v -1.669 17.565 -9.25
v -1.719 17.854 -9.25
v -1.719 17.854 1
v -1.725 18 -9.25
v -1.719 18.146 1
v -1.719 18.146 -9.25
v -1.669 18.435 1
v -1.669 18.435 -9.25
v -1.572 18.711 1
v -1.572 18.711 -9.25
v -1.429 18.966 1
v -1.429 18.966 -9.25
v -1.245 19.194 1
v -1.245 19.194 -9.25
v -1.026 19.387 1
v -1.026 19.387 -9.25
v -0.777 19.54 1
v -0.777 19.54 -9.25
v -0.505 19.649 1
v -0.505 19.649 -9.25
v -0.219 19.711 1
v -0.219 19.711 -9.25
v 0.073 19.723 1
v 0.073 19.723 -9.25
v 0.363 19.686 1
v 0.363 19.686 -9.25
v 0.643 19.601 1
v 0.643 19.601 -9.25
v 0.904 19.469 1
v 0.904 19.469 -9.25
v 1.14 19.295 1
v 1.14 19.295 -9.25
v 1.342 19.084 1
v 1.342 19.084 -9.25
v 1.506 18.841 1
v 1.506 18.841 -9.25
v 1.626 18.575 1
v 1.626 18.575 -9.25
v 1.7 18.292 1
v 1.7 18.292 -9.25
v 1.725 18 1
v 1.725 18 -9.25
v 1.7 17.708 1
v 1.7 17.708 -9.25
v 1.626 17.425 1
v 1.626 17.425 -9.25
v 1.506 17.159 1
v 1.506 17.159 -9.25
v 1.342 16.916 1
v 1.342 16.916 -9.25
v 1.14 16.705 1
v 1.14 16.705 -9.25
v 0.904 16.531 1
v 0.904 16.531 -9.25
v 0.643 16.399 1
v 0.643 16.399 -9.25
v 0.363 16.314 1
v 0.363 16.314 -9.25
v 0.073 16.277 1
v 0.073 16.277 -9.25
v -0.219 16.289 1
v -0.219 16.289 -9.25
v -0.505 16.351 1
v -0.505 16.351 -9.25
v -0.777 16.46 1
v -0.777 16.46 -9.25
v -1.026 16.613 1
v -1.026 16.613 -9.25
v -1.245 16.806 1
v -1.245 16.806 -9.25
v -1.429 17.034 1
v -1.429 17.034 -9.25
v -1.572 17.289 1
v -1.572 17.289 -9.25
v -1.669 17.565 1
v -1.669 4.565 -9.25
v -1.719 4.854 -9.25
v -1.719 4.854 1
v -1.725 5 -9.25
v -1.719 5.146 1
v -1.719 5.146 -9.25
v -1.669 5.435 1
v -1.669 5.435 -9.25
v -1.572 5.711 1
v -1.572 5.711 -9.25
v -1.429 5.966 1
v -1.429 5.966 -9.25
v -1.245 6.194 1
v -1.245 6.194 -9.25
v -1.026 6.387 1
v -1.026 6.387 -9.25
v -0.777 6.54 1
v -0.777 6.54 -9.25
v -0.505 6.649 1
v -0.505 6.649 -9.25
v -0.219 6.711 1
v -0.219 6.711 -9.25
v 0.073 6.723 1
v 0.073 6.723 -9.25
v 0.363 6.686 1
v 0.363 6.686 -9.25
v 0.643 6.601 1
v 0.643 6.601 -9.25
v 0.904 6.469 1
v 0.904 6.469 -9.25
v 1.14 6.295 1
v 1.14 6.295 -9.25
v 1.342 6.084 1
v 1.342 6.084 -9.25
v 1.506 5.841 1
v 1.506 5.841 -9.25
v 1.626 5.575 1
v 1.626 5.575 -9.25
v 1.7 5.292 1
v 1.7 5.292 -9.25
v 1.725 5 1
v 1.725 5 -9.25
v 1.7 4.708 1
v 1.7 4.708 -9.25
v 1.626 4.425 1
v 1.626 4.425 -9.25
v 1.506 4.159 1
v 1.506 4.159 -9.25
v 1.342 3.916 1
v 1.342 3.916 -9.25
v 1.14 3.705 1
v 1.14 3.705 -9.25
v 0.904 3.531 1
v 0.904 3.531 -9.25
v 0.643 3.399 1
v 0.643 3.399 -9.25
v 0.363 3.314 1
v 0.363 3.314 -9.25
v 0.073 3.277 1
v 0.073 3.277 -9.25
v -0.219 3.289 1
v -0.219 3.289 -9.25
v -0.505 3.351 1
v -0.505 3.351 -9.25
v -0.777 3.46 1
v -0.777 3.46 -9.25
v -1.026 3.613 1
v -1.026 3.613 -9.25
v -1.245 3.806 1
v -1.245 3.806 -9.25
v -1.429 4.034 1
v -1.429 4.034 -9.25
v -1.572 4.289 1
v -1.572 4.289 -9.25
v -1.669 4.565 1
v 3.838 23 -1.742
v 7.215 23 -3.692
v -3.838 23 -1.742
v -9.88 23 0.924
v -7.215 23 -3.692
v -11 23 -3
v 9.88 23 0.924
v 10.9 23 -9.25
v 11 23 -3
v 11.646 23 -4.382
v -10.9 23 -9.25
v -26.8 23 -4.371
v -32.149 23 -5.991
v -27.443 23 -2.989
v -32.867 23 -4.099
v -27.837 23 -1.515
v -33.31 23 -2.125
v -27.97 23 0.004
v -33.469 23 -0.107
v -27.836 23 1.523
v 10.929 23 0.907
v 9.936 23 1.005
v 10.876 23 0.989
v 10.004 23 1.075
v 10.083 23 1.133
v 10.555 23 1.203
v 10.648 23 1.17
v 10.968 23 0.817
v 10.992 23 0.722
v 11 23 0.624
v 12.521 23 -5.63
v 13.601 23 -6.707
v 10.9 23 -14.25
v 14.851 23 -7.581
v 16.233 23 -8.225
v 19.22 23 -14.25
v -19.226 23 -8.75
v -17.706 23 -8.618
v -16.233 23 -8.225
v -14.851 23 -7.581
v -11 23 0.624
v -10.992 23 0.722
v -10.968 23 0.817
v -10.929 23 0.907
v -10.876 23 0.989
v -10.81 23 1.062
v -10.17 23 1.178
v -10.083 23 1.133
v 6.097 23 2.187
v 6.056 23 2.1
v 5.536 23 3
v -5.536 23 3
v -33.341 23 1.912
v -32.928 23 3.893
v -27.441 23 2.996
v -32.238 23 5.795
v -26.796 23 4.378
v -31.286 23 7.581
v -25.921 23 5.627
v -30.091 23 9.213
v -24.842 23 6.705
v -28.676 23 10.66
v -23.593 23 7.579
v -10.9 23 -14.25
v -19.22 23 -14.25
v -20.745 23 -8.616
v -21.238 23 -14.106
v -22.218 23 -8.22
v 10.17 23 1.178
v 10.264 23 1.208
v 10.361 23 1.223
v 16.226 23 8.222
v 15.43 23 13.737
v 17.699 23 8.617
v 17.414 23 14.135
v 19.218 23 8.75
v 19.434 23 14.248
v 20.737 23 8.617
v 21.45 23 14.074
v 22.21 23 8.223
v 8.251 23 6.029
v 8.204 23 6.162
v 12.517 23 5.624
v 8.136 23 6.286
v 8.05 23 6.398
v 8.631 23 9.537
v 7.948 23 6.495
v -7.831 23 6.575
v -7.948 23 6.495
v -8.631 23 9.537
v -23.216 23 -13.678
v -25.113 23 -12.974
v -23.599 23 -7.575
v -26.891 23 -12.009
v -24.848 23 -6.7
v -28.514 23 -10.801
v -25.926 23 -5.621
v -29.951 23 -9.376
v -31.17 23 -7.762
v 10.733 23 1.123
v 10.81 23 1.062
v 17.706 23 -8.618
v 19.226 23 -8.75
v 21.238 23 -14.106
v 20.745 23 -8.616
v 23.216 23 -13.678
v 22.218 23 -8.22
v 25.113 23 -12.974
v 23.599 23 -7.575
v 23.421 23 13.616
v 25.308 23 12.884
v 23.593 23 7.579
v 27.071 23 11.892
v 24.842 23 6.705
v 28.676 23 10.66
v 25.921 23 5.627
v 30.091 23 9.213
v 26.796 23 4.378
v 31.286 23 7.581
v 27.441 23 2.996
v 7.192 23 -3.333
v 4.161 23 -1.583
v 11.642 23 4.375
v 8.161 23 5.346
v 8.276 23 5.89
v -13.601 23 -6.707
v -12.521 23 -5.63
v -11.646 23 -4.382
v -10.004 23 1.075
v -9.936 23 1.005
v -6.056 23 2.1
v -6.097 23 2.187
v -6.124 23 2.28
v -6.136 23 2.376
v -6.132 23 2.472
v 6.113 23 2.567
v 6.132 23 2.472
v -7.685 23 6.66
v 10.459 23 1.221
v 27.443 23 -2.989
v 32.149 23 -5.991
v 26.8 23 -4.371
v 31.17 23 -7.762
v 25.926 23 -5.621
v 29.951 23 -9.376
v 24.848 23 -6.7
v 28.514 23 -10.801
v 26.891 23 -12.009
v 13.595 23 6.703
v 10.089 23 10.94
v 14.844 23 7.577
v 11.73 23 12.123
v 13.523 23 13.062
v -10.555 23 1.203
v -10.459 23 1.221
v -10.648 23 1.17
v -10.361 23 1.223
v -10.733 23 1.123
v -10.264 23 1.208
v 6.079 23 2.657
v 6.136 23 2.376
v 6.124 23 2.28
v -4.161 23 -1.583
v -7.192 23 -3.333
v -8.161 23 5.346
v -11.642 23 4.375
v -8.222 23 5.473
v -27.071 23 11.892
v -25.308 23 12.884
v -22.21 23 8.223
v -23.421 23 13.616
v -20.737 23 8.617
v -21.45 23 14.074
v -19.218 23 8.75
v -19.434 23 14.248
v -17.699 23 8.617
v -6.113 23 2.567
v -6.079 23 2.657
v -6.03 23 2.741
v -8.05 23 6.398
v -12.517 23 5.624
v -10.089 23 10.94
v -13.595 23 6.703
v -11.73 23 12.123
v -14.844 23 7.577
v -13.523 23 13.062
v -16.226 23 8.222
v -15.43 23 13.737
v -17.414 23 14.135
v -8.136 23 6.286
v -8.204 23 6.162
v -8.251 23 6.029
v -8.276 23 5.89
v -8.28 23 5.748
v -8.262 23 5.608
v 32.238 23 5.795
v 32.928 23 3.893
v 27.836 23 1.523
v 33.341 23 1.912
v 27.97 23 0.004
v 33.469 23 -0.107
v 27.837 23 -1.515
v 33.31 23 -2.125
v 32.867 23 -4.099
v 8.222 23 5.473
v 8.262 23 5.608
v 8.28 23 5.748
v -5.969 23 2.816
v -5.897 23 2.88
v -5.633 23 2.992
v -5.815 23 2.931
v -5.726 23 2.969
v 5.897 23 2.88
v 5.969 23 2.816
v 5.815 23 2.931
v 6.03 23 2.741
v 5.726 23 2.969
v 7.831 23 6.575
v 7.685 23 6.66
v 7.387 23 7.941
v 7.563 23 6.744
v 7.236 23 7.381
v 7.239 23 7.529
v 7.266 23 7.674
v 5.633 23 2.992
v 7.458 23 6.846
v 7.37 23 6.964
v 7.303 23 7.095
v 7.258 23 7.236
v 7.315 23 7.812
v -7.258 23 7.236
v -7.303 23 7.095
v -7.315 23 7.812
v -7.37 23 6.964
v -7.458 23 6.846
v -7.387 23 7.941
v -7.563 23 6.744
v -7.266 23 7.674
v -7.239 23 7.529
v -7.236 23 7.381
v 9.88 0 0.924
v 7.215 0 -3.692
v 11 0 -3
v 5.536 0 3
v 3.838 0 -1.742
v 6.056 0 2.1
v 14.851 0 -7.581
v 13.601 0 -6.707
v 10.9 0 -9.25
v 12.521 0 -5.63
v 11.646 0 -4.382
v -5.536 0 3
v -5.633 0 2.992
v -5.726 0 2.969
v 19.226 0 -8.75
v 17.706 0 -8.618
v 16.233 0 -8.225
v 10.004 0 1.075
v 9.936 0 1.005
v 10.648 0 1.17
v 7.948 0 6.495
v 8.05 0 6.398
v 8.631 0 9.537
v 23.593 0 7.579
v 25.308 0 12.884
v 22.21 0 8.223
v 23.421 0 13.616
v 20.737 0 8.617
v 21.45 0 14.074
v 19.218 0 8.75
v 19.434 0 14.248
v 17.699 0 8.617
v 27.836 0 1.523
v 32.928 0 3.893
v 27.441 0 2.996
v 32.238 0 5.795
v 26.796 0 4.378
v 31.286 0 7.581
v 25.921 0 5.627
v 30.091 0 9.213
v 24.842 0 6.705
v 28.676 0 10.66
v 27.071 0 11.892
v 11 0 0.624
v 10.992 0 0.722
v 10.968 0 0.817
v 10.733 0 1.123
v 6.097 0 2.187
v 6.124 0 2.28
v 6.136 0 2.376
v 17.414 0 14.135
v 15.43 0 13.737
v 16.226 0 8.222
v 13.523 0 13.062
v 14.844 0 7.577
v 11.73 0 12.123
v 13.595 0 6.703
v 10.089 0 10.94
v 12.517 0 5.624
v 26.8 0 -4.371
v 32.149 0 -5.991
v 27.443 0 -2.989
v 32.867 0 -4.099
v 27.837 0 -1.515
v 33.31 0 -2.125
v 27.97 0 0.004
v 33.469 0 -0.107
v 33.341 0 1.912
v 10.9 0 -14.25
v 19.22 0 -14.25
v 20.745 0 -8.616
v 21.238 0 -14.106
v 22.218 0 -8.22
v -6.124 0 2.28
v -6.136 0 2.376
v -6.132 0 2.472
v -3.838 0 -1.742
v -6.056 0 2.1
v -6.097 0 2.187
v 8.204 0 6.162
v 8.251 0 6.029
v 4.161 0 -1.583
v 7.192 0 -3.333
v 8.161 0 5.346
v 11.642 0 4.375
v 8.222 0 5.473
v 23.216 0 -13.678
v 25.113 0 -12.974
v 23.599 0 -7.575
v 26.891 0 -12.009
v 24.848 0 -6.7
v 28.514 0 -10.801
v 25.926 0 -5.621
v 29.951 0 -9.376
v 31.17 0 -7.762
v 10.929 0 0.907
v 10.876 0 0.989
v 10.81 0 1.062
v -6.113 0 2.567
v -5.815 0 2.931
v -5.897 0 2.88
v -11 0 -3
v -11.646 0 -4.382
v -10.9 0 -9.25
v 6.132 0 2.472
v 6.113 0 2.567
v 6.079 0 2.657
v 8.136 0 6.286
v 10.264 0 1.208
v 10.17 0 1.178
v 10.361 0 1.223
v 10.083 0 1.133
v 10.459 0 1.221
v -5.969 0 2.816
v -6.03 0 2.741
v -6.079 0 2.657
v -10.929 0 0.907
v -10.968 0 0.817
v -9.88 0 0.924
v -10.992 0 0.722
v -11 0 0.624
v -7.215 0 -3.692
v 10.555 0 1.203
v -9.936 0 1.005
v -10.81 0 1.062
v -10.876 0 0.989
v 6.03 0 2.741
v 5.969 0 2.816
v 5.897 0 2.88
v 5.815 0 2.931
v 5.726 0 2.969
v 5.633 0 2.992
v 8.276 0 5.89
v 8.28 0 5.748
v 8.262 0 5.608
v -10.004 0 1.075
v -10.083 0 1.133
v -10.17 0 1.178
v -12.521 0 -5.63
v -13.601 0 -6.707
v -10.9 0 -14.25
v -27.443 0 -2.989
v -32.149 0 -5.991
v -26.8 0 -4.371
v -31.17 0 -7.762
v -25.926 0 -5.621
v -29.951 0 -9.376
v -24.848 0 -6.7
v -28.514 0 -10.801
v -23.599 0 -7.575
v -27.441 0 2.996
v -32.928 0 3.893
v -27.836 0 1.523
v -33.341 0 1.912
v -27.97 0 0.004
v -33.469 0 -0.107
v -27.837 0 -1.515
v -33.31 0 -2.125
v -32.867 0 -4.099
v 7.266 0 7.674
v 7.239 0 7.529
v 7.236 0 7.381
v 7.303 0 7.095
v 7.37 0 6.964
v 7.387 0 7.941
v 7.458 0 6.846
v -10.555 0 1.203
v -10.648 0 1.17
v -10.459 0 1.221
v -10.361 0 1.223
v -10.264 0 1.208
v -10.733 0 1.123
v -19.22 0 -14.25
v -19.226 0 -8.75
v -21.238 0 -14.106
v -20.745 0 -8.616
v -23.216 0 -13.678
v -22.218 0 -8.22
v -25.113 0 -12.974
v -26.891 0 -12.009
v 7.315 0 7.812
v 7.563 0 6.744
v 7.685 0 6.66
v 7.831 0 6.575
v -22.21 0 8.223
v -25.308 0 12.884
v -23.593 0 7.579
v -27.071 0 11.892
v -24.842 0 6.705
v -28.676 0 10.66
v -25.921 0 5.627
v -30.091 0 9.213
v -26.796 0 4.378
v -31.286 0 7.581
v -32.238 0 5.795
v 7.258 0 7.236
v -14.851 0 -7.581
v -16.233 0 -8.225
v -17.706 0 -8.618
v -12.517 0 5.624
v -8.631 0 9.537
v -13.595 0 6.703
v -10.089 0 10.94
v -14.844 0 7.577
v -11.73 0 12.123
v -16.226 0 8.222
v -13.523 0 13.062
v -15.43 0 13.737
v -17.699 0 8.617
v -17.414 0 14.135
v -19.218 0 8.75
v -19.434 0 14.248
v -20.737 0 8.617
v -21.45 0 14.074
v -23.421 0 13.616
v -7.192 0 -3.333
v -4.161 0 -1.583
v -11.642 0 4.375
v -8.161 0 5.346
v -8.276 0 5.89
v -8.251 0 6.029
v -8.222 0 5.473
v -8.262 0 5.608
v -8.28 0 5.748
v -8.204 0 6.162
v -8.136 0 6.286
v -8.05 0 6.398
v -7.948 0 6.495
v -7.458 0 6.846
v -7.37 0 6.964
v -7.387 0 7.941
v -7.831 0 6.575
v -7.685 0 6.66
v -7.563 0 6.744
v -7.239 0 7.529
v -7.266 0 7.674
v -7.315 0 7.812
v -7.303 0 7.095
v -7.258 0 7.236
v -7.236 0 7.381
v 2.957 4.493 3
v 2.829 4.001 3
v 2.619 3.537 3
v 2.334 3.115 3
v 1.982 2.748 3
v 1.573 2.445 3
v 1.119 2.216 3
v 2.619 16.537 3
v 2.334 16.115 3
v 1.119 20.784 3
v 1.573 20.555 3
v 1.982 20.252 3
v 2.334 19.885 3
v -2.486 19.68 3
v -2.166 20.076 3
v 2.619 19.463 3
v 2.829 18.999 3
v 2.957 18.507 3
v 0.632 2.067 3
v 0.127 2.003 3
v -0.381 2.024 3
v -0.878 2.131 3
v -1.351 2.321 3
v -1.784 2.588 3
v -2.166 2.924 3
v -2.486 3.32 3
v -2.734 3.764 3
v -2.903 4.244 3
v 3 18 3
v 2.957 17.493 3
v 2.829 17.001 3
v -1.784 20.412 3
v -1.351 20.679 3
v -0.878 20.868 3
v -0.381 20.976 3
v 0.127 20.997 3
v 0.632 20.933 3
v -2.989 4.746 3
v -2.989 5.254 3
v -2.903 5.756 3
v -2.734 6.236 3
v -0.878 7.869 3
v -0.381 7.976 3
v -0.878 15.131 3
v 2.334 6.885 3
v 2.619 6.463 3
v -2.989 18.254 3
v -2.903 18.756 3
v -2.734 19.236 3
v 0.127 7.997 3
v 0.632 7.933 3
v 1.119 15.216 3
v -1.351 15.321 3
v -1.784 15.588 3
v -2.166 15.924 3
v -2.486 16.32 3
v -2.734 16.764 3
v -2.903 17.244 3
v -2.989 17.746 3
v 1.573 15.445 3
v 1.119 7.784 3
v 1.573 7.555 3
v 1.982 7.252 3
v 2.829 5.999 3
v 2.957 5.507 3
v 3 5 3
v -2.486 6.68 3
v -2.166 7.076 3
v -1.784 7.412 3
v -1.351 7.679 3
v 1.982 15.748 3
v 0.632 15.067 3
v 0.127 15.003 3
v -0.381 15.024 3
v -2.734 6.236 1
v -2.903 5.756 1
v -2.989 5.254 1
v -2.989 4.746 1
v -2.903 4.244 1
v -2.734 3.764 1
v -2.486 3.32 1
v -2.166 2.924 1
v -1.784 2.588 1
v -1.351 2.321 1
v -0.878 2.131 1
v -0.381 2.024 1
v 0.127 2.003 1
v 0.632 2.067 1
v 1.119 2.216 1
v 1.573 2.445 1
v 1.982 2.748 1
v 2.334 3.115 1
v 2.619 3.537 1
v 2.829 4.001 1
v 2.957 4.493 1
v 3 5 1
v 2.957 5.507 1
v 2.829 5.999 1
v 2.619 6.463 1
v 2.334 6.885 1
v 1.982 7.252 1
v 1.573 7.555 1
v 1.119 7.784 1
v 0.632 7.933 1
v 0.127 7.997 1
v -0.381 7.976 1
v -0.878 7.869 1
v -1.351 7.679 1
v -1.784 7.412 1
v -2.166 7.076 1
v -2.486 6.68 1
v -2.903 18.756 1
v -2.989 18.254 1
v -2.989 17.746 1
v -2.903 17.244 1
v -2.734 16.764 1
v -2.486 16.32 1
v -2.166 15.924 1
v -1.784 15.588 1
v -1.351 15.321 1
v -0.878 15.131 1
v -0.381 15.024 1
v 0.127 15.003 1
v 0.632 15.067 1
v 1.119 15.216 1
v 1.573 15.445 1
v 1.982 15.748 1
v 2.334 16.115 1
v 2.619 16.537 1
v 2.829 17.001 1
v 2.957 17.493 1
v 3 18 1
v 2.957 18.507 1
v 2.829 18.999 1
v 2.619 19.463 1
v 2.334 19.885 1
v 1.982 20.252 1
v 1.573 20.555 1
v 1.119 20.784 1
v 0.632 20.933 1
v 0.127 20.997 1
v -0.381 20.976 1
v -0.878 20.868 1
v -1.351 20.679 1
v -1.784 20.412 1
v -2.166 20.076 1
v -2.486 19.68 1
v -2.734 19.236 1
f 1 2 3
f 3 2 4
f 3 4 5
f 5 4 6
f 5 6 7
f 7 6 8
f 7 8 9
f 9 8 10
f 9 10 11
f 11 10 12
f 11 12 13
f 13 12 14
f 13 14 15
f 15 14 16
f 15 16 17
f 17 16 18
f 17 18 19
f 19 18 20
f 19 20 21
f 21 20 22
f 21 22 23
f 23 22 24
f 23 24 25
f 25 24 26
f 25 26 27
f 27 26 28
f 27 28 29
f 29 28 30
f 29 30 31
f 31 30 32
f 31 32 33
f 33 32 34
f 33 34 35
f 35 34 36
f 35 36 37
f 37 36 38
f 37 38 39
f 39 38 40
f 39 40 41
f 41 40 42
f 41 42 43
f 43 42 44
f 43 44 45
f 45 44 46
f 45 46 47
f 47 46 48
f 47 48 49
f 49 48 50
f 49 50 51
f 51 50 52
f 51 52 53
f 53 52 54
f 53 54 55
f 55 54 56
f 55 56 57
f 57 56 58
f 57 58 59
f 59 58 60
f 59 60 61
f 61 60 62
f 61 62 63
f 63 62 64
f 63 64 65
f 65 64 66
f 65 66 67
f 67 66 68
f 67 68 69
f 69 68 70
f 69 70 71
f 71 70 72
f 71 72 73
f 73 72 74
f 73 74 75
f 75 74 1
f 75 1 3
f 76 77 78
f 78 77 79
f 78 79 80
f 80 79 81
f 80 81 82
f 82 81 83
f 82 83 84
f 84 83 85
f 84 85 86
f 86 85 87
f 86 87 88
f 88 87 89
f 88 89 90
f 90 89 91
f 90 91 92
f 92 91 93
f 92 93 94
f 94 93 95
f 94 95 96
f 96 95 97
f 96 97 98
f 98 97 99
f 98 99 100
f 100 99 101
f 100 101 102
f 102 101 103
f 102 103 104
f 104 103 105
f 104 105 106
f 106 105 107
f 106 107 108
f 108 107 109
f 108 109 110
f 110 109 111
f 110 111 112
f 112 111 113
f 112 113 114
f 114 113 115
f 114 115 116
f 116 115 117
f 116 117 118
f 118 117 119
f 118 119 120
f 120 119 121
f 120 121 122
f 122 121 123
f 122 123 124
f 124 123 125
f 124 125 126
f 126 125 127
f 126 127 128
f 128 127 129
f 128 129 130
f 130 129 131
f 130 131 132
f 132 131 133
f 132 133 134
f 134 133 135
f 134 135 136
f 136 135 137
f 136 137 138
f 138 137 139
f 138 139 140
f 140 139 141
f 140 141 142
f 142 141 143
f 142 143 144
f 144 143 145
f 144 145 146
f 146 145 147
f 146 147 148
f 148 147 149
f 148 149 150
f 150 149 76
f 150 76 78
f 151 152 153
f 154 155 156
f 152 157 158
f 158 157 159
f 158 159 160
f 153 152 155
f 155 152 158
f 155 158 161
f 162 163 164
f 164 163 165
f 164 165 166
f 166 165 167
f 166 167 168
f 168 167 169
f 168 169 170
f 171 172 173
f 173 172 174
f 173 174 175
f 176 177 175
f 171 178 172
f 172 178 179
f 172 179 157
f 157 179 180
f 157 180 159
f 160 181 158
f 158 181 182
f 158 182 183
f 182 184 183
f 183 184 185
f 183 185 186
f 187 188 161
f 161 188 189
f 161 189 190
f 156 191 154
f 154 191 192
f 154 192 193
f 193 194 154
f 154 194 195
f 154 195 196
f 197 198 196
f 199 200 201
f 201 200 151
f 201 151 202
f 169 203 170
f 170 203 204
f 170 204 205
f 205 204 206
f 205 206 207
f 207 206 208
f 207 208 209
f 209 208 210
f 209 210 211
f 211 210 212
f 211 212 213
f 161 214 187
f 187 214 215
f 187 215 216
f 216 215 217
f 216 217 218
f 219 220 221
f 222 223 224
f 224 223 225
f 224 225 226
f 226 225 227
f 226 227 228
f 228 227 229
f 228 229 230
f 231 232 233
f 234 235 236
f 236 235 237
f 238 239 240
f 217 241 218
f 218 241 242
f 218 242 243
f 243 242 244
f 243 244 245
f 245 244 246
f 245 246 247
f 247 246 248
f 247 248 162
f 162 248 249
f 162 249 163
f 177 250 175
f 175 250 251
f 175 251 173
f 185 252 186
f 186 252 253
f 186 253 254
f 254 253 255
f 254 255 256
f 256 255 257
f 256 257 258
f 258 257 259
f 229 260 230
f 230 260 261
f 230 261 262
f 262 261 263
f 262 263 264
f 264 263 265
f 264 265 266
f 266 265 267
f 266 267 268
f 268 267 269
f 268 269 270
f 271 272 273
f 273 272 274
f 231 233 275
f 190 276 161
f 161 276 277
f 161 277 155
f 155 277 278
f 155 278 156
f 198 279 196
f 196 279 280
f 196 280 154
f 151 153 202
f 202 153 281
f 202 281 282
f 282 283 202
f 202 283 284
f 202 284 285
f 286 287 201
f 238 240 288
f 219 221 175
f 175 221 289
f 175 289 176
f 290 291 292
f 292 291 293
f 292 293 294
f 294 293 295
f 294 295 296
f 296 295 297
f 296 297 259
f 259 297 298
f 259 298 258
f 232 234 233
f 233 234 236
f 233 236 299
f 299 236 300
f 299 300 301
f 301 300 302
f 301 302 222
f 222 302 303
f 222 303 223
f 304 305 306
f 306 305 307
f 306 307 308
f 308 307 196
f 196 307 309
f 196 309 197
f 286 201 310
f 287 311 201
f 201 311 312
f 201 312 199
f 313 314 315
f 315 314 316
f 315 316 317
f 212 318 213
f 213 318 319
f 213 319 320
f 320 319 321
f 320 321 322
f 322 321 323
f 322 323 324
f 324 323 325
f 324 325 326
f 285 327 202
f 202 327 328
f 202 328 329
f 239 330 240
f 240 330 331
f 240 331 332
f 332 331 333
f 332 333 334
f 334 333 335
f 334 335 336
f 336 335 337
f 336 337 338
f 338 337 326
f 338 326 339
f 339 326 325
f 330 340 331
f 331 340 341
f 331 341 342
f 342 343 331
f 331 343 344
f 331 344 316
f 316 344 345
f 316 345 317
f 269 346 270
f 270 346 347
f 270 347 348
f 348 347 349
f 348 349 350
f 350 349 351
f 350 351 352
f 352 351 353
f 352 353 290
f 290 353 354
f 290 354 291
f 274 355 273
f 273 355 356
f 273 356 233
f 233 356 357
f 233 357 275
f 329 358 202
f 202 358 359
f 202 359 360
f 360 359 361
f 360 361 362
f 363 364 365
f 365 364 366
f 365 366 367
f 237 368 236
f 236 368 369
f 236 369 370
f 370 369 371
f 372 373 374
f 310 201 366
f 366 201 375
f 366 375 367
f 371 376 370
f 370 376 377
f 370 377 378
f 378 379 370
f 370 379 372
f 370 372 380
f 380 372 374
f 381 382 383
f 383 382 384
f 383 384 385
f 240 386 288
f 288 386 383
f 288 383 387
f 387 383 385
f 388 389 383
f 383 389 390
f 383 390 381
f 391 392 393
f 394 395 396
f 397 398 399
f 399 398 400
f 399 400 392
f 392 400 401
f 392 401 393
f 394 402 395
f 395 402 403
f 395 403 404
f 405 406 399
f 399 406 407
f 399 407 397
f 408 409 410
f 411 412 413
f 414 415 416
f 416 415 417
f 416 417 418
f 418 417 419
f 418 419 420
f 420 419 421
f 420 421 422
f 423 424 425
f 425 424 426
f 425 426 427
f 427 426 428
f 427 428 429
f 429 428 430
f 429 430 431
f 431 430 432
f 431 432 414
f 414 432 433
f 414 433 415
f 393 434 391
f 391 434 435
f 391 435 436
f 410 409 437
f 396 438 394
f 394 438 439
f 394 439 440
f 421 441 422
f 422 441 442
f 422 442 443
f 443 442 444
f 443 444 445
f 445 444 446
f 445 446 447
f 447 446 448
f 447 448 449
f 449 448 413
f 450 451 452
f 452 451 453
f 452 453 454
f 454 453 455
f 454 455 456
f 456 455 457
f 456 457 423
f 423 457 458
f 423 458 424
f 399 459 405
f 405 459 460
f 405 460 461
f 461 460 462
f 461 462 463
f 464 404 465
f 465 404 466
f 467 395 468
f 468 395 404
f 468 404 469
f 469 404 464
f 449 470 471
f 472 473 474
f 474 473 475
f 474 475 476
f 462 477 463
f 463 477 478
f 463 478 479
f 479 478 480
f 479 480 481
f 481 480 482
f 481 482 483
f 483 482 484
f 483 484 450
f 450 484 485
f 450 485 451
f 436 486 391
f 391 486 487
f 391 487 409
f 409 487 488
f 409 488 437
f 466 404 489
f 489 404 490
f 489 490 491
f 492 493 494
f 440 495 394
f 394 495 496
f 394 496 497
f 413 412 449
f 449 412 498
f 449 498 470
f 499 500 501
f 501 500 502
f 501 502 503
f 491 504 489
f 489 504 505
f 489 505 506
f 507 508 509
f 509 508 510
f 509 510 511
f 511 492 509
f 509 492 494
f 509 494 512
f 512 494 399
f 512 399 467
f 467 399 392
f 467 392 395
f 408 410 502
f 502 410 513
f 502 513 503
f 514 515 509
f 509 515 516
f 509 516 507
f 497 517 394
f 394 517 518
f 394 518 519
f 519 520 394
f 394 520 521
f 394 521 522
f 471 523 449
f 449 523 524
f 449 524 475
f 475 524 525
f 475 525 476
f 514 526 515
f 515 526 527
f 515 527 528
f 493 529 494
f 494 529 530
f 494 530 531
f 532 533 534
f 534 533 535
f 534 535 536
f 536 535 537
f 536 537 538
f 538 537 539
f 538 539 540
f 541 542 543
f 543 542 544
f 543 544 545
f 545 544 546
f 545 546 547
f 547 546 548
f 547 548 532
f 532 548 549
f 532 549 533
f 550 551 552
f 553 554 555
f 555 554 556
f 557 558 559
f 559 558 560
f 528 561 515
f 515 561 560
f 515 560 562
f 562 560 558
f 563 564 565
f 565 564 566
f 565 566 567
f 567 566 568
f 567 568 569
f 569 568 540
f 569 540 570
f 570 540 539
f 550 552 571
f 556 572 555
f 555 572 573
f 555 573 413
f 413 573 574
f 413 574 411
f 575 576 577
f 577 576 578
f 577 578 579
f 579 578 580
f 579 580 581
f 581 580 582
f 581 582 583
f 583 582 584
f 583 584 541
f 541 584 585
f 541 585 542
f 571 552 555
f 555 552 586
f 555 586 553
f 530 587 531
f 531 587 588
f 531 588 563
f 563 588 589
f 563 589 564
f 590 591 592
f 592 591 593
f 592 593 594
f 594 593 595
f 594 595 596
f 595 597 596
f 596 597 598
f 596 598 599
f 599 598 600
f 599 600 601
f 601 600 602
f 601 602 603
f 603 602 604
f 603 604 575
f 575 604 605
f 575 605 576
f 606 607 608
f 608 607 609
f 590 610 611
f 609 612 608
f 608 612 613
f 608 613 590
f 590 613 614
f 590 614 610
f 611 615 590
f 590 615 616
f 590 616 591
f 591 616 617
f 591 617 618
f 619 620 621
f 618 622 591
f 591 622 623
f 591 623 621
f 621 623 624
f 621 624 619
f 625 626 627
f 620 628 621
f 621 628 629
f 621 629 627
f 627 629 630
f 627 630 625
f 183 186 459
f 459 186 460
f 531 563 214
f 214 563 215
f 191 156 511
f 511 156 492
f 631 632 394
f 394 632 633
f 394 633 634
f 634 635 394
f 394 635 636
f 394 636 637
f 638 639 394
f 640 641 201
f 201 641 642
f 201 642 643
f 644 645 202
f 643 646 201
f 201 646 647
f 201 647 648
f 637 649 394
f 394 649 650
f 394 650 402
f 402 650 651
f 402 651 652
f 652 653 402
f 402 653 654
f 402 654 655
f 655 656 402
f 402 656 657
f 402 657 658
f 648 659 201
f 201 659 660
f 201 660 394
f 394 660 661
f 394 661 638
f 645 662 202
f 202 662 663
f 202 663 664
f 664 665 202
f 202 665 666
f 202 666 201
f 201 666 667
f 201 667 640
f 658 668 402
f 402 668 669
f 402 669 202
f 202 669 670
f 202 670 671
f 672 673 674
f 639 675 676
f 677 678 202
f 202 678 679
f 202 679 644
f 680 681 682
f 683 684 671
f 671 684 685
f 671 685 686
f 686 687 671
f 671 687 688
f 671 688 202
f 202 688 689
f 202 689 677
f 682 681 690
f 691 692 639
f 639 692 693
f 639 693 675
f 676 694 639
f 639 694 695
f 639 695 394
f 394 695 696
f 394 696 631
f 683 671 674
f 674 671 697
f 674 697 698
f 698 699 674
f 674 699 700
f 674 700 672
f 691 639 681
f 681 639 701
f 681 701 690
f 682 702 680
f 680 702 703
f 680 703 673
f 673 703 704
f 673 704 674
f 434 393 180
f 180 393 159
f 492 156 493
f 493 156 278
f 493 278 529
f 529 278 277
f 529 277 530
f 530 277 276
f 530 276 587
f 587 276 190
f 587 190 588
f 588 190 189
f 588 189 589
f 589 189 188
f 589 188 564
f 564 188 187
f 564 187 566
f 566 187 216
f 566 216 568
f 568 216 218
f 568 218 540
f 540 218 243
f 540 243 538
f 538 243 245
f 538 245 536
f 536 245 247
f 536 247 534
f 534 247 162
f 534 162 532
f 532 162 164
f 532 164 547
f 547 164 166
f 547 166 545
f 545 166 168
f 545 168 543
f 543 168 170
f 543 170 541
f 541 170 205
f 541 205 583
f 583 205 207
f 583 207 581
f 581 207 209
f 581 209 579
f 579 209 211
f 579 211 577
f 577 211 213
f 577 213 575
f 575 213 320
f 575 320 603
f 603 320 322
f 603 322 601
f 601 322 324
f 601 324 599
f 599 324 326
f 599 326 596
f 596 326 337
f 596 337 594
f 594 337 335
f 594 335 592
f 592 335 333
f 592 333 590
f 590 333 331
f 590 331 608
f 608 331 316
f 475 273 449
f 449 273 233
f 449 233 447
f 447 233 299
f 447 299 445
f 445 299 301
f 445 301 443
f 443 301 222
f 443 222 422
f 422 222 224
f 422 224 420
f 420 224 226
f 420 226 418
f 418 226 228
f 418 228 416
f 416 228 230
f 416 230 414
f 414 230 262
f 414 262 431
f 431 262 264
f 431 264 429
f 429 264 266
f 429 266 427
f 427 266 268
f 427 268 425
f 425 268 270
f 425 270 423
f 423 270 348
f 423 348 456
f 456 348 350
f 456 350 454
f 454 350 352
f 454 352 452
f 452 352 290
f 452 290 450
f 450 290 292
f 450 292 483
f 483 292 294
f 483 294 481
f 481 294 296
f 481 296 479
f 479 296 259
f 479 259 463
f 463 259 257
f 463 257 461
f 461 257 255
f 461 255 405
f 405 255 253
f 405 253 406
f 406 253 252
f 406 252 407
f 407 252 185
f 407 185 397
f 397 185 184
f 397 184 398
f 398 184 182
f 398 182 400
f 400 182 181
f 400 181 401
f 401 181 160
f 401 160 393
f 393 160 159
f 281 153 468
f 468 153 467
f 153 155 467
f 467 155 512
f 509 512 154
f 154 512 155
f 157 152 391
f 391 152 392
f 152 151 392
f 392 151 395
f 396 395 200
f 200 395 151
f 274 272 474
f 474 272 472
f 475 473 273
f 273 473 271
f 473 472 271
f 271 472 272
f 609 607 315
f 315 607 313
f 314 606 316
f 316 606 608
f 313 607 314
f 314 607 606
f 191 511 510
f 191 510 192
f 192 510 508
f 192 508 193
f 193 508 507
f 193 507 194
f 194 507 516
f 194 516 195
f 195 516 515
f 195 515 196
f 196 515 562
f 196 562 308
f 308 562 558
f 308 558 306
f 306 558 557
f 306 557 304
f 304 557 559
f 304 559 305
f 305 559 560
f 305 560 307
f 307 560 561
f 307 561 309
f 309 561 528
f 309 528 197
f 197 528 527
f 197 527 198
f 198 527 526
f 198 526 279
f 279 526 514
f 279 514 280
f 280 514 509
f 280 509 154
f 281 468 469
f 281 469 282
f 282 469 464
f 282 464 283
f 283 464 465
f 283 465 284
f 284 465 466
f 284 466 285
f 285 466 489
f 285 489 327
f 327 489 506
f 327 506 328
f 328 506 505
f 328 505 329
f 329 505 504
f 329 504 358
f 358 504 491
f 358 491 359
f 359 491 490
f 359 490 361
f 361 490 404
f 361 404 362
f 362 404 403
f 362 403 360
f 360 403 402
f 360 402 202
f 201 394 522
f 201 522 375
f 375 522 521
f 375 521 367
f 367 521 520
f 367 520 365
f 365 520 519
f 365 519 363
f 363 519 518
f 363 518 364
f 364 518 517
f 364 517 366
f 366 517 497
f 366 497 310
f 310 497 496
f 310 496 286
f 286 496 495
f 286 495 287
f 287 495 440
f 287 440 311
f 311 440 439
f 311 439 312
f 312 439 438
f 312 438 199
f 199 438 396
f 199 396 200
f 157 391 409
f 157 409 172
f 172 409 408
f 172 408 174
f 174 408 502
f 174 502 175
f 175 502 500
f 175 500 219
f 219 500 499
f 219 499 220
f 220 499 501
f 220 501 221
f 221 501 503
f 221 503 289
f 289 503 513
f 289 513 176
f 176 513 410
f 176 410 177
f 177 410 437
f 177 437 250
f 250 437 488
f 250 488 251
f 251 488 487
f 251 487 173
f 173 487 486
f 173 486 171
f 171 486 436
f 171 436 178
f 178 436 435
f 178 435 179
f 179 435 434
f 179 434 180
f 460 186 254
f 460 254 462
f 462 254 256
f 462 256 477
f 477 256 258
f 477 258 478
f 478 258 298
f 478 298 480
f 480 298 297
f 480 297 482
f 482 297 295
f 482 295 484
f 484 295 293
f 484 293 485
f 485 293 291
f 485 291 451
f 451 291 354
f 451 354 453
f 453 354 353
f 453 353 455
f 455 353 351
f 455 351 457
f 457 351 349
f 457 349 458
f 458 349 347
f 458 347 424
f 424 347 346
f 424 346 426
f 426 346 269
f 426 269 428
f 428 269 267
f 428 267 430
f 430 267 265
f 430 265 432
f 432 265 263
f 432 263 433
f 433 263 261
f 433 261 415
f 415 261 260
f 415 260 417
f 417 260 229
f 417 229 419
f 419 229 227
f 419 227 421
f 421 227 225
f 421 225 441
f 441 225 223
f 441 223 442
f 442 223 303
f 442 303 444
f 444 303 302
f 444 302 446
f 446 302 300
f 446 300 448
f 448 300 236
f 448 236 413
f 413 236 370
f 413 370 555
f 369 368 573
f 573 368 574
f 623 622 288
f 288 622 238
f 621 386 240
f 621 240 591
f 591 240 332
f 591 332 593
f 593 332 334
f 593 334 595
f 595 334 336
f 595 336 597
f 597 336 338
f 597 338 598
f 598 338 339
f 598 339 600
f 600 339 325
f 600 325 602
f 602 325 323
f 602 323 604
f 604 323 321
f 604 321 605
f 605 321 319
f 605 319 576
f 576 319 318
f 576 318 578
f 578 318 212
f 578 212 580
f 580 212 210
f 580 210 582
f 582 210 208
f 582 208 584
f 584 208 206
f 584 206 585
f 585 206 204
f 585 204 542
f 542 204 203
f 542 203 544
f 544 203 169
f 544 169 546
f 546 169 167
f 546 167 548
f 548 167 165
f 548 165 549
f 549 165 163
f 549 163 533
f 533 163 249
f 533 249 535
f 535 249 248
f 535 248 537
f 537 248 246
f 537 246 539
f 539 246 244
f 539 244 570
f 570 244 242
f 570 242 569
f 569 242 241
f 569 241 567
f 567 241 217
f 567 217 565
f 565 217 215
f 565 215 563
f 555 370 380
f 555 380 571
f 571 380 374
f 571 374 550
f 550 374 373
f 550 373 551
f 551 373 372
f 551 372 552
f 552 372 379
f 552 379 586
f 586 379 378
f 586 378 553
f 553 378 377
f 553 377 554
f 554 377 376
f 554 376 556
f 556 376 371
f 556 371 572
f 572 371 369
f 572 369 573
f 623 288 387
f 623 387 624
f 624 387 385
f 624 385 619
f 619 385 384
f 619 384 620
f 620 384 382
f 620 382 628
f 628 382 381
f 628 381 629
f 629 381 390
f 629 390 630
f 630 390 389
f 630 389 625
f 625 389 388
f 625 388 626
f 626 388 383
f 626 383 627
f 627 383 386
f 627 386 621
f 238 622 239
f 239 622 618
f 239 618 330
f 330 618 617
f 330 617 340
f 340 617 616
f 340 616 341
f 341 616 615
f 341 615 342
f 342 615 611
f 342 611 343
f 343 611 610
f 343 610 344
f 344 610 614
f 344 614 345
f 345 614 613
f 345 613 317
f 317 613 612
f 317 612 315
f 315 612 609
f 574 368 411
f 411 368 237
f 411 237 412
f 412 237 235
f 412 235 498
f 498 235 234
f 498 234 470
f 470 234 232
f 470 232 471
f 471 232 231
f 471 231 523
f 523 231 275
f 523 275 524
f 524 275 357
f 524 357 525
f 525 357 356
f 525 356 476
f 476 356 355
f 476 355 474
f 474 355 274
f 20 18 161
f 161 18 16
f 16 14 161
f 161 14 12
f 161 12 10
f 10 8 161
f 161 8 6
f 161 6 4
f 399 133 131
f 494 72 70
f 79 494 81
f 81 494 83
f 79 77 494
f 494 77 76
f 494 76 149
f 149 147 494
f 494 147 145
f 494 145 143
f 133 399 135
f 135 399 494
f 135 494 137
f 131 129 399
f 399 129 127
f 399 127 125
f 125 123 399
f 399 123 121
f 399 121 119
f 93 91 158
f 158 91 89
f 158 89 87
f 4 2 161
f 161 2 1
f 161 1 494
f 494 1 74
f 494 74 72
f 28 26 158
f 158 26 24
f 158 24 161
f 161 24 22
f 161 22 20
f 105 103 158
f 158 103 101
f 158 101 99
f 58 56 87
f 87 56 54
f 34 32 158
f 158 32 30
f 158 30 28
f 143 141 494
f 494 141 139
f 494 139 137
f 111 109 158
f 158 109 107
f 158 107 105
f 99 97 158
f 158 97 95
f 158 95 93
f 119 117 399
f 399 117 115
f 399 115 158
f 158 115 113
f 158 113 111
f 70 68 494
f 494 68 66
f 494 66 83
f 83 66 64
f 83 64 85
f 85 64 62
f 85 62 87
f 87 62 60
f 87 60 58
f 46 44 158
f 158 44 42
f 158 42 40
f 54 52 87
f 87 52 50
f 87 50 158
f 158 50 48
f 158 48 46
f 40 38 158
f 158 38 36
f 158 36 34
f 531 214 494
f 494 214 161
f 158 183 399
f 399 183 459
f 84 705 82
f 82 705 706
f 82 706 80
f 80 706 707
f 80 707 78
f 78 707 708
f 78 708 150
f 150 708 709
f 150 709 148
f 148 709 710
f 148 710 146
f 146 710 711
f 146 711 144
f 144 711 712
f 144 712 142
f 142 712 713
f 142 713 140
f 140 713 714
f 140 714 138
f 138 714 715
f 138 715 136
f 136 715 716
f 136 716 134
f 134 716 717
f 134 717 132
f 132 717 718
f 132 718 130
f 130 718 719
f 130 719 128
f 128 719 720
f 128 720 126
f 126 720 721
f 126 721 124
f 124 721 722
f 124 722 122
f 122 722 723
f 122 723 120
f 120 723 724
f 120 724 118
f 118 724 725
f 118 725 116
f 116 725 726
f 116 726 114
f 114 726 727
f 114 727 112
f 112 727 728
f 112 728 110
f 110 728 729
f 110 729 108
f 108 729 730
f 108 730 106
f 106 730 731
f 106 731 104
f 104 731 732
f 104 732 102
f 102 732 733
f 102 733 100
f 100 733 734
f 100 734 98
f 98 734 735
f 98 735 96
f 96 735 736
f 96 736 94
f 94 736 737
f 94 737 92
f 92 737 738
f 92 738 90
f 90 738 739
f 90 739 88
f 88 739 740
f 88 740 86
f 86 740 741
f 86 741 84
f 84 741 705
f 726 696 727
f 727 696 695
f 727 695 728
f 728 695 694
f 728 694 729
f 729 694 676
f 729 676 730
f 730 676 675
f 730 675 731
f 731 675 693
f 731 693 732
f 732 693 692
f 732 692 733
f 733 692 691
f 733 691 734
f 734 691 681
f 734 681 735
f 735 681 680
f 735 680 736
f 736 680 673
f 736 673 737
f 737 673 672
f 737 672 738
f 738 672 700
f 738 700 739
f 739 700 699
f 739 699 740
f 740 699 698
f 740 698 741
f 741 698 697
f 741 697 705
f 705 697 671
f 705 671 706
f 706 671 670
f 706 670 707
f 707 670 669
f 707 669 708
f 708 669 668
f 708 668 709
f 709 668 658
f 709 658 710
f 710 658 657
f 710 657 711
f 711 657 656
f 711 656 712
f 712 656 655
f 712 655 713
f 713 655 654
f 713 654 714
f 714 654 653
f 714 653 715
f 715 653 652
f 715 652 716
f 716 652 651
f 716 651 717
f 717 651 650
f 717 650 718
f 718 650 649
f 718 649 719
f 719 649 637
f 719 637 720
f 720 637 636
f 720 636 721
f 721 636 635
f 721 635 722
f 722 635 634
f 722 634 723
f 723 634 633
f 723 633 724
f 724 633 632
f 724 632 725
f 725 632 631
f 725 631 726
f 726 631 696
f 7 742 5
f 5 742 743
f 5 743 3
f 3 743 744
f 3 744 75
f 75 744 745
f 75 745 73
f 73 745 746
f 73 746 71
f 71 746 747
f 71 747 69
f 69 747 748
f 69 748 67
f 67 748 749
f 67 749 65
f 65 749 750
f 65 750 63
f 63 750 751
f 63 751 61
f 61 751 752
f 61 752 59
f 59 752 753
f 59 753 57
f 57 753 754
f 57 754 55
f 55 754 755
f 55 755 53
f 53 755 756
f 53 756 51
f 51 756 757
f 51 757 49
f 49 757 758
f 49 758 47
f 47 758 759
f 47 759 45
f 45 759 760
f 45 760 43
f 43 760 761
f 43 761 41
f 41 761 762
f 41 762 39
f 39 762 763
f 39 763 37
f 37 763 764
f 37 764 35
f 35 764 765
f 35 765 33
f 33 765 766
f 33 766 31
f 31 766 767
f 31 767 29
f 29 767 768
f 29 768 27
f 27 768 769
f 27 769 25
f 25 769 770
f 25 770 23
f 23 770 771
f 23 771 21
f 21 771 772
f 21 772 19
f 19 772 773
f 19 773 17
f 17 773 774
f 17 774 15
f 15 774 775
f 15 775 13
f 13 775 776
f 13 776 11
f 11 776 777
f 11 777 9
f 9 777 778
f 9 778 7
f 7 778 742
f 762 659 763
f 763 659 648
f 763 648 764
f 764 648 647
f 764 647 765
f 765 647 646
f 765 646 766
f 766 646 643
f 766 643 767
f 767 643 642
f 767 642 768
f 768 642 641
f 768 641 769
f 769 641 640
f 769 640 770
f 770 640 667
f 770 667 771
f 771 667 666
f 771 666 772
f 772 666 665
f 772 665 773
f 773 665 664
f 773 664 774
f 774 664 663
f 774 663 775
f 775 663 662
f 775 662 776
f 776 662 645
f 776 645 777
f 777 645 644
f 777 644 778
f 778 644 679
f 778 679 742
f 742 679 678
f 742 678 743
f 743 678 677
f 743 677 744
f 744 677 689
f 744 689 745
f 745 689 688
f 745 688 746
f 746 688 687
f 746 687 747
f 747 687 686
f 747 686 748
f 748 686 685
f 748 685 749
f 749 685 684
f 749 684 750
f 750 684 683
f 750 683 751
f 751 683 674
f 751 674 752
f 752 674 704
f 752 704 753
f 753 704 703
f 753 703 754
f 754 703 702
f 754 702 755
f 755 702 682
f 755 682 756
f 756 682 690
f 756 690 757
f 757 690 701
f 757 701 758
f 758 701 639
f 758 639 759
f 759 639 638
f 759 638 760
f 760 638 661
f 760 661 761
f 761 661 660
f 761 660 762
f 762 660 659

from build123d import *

# Parameters (mm, degrees)
SKETCH1_W               = 22
SKETCH1_H               = 6
BOSS_EXTRUDE1_DEPTH     = 23
BOSS_EXTRUDE2_DEPTH     = 23
BOSS_EXTRUDE3_DEPTH     = 23
CUT_EXTRUDE1_DEPTH      = 24
SKETCH5_W               = 20
SKETCH5_H               = 2
BOSS_EXTRUDE4_DEPTH     = 45
SKETCH6_W               = 1
SKETCH6_H               = 2
BOSS_EXTRUDE5_DEPTH     = 20
BOSS_EXTRUDE6_DEPTH     = 23
FILLET1_R               = 0.6
BOSS_EXTRUDE7_DEPTH     = 23
FILLET2_R               = 0.9
SKETCH10_W              = 21.8
SKETCH10_H              = 5
CUT_EXTRUDE2_DEPTH      = 23
CUT_EXTRUDE2_DEPTH_BACK = 24
SKETCH11_R              = 1.725
CUT_EXTRUDE3_DEPTH      = 18.25
SKETCH12_R              = 3
CUT_EXTRUDE4_DEPTH      = 2


with BuildPart() as part:
    # Sketch1 → Boss-Extrude1 (new body)
    with BuildSketch(Plane(origin=(0, 0, 0), x_dir=(1, 0, 0), z_dir=(0, 1, 0))):
        Rectangle(SKETCH1_W, SKETCH1_H)
    extrude(amount=BOSS_EXTRUDE1_DEPTH)

    # Sketch2 → Boss-Extrude2 (add)
    with BuildSketch(Plane(origin=(0, 23, 0), x_dir=(1, 0, 0), z_dir=(0, 1, 0))):
        with BuildLine():
            Line((-11, 3), (-7.342667591, 3))
            ThreePointArc((-7.342667591, 3), (-31.353026246, 1.686257741), (-8.610829915, -6.125))
            Line((-8.610829915, -6.125), (-11.641918828, -4.375))
            ThreePointArc((-11.641918828, -4.375), (-27.936683546, 0.758729989), (-11, 3))
        make_face()
        with BuildLine():
            Line((11.641918828, -4.375), (8.610829915, -6.125))
            ThreePointArc((8.610829915, -6.125), (31.353026246, 1.686257741), (7.342667591, 3))
            Line((7.342667591, 3), (11, 3))
            ThreePointArc((11, 3), (27.936683546, 0.758729989), (11.641918828, -4.375))
        make_face()
    extrude(amount=-BOSS_EXTRUDE2_DEPTH)

    # Sketch3 → Boss-Extrude3 (add)
    with BuildSketch(Plane(origin=(0, 23, 0), x_dir=(1, 0, 0), z_dir=(0, 1, 0))):
        with BuildLine():
            Line((-19.219641111, 12.25), (19.219641111, 12.25))
            ThreePointArc((19.219641111, 12.25), (11.692606503, 9.66469089), (7.342667591, 3))
            Line((7.342667591, 3), (-7.342667591, 3))
            ThreePointArc((-7.342667591, 3), (-11.692606503, 9.66469089), (-19.219641111, 12.25))
        make_face()
    extrude(amount=-BOSS_EXTRUDE3_DEPTH)

    # Sketch8 → Cut-Extrude1 (cut, through all)
    with BuildSketch(Plane.XZ):
        Polygon((11, 2.863163975), (7.215123909, -3.692433715), (3.837624834, -1.742433715), (6.575670216, 3), (11, 3), align=None)
        Polygon((-6.575670216, 3), (-11, 3), (-11, 2.863163975), (-7.215123909, -3.692433715), (-3.837624834, -1.742433715), align=None)
    extrude(amount=-CUT_EXTRUDE1_DEPTH, mode=Mode.SUBTRACT)

    # Sketch5 → Boss-Extrude4 (add)
    with BuildSketch(Plane(origin=(0, 23, 0), x_dir=(1, 0, 0), z_dir=(0, 1, 0))):
        with Locations((0, 13.25)):
            Rectangle(SKETCH5_W, SKETCH5_H)
    extrude(amount=-BOSS_EXTRUDE4_DEPTH)

    # Sketch6 → Boss-Extrude5 (add)
    with BuildSketch(Plane.ZY.offset(10)):
        with Locations((-11.75, -21)):
            Rectangle(SKETCH6_W, SKETCH6_H)
        Polygon((-11.25, -20), (-11.25, -22), (-9.25, -22), (-9.25, -1), (-11.25, -1), align=None)
    extrude(amount=-BOSS_EXTRUDE5_DEPTH)

    # Sketch9 → Boss-Extrude6 (add)
    with BuildSketch(Plane.XZ):
        Polygon((4.160829915, -1.582626094), (8.610829915, 6.125), (11.641918828, 4.375), (7.191918828, -3.332626094), align=None)
        Polygon((-7.191918828, -3.332626094), (-4.160829915, -1.582626094), (-8.610829915, 6.125), (-11.641918828, 4.375), align=None)
    extrude(amount=-BOSS_EXTRUDE6_DEPTH)

    # Fillet1
    fillet1_edges = [part.edges().sort_by_distance(p)[0] for p in [
        (11, 11.5, 2.863163975),
        (6.575670216, 11.5, 3),
        (-6.575670216, 11.5, 3),
        (-11, 11.5, 2.863163975),
    ]]
    fillet(fillet1_edges, radius=FILLET1_R)

    # Sketch7 → Boss-Extrude7 (add)
    with BuildSketch(Plane(origin=(0, 23, 0), x_dir=(1, 0, 0), z_dir=(0, 1, 0))):
        with BuildLine():
            Line((10, 14.25), (19.219641111, 14.25))
            ThreePointArc((19.219641111, 14.25), (31.560503115, -7.125), (6.878779107, -7.125))
            Line((6.878779107, -7.125), (8.610829915, -6.125))
            ThreePointArc((8.610829915, -6.125), (29.828452308, -6.125), (19.219641111, 12.25))
            Line((19.219641111, 12.25), (10, 12.25))
            Line((10, 12.25), (10, 14.25))
        make_face()
        with BuildLine():
            Line((-8.610829915, -6.125), (-6.878779107, -7.125))
            ThreePointArc((-6.878779107, -7.125), (-31.560503115, -7.125), (-19.219641111, 14.25))
            Line((-19.219641111, 14.25), (-10, 14.25))
            Line((-10, 14.25), (-10, 12.25))
            Line((-10, 12.25), (-19.219641111, 12.25))
            ThreePointArc((-19.219641111, 12.25), (-29.828452308, -6.125), (-8.610829915, -6.125))
        make_face()
    extrude(amount=-BOSS_EXTRUDE7_DEPTH)

    # Fillet2
    fillet2_edges = [part.edges().sort_by_distance(p)[0] for p in [
        (0, -22, -9.25),
        (-8.610829915, 11.5, 6.125),
        (6.878779107, 11.5, 7.125),
        (10, 0, -13.25),
        (-6.878779107, 11.5, 7.125),
        (-10, 0, -13.25),
        (8.610829915, 11.5, 6.125),
        (0, -22, -14.25),
    ]]
    fillet(fillet2_edges, radius=FILLET2_R)

    # Sketch10 → Cut-Extrude2 (cut, two sides)
    with BuildSketch(Plane.XZ) as cut_extrude2_sk:
        with Locations((0, -11.75)):
            Rectangle(SKETCH10_W, SKETCH10_H)
    extrude(amount=CUT_EXTRUDE2_DEPTH, mode=Mode.SUBTRACT)
    extrude(cut_extrude2_sk.sketch, amount=-CUT_EXTRUDE2_DEPTH_BACK, mode=Mode.SUBTRACT)

    # Sketch11 → Cut-Extrude3 (cut, through all)
    with BuildSketch(Plane.XY.offset(3)):
        with Locations((0, 5)):
            Circle(SKETCH11_R)
        with Locations((0, 18)):
            Circle(SKETCH11_R)
    extrude(amount=-CUT_EXTRUDE3_DEPTH, mode=Mode.SUBTRACT)

    # Sketch12 → Cut-Extrude4 (cut)
    with BuildSketch(Plane.XY.offset(3)):
        with Locations((0, 5)):
            Circle(SKETCH12_R)
        with Locations((0, 18)):
            Circle(SKETCH12_R)
    extrude(amount=-CUT_EXTRUDE4_DEPTH, mode=Mode.SUBTRACT)


solid = part.part
